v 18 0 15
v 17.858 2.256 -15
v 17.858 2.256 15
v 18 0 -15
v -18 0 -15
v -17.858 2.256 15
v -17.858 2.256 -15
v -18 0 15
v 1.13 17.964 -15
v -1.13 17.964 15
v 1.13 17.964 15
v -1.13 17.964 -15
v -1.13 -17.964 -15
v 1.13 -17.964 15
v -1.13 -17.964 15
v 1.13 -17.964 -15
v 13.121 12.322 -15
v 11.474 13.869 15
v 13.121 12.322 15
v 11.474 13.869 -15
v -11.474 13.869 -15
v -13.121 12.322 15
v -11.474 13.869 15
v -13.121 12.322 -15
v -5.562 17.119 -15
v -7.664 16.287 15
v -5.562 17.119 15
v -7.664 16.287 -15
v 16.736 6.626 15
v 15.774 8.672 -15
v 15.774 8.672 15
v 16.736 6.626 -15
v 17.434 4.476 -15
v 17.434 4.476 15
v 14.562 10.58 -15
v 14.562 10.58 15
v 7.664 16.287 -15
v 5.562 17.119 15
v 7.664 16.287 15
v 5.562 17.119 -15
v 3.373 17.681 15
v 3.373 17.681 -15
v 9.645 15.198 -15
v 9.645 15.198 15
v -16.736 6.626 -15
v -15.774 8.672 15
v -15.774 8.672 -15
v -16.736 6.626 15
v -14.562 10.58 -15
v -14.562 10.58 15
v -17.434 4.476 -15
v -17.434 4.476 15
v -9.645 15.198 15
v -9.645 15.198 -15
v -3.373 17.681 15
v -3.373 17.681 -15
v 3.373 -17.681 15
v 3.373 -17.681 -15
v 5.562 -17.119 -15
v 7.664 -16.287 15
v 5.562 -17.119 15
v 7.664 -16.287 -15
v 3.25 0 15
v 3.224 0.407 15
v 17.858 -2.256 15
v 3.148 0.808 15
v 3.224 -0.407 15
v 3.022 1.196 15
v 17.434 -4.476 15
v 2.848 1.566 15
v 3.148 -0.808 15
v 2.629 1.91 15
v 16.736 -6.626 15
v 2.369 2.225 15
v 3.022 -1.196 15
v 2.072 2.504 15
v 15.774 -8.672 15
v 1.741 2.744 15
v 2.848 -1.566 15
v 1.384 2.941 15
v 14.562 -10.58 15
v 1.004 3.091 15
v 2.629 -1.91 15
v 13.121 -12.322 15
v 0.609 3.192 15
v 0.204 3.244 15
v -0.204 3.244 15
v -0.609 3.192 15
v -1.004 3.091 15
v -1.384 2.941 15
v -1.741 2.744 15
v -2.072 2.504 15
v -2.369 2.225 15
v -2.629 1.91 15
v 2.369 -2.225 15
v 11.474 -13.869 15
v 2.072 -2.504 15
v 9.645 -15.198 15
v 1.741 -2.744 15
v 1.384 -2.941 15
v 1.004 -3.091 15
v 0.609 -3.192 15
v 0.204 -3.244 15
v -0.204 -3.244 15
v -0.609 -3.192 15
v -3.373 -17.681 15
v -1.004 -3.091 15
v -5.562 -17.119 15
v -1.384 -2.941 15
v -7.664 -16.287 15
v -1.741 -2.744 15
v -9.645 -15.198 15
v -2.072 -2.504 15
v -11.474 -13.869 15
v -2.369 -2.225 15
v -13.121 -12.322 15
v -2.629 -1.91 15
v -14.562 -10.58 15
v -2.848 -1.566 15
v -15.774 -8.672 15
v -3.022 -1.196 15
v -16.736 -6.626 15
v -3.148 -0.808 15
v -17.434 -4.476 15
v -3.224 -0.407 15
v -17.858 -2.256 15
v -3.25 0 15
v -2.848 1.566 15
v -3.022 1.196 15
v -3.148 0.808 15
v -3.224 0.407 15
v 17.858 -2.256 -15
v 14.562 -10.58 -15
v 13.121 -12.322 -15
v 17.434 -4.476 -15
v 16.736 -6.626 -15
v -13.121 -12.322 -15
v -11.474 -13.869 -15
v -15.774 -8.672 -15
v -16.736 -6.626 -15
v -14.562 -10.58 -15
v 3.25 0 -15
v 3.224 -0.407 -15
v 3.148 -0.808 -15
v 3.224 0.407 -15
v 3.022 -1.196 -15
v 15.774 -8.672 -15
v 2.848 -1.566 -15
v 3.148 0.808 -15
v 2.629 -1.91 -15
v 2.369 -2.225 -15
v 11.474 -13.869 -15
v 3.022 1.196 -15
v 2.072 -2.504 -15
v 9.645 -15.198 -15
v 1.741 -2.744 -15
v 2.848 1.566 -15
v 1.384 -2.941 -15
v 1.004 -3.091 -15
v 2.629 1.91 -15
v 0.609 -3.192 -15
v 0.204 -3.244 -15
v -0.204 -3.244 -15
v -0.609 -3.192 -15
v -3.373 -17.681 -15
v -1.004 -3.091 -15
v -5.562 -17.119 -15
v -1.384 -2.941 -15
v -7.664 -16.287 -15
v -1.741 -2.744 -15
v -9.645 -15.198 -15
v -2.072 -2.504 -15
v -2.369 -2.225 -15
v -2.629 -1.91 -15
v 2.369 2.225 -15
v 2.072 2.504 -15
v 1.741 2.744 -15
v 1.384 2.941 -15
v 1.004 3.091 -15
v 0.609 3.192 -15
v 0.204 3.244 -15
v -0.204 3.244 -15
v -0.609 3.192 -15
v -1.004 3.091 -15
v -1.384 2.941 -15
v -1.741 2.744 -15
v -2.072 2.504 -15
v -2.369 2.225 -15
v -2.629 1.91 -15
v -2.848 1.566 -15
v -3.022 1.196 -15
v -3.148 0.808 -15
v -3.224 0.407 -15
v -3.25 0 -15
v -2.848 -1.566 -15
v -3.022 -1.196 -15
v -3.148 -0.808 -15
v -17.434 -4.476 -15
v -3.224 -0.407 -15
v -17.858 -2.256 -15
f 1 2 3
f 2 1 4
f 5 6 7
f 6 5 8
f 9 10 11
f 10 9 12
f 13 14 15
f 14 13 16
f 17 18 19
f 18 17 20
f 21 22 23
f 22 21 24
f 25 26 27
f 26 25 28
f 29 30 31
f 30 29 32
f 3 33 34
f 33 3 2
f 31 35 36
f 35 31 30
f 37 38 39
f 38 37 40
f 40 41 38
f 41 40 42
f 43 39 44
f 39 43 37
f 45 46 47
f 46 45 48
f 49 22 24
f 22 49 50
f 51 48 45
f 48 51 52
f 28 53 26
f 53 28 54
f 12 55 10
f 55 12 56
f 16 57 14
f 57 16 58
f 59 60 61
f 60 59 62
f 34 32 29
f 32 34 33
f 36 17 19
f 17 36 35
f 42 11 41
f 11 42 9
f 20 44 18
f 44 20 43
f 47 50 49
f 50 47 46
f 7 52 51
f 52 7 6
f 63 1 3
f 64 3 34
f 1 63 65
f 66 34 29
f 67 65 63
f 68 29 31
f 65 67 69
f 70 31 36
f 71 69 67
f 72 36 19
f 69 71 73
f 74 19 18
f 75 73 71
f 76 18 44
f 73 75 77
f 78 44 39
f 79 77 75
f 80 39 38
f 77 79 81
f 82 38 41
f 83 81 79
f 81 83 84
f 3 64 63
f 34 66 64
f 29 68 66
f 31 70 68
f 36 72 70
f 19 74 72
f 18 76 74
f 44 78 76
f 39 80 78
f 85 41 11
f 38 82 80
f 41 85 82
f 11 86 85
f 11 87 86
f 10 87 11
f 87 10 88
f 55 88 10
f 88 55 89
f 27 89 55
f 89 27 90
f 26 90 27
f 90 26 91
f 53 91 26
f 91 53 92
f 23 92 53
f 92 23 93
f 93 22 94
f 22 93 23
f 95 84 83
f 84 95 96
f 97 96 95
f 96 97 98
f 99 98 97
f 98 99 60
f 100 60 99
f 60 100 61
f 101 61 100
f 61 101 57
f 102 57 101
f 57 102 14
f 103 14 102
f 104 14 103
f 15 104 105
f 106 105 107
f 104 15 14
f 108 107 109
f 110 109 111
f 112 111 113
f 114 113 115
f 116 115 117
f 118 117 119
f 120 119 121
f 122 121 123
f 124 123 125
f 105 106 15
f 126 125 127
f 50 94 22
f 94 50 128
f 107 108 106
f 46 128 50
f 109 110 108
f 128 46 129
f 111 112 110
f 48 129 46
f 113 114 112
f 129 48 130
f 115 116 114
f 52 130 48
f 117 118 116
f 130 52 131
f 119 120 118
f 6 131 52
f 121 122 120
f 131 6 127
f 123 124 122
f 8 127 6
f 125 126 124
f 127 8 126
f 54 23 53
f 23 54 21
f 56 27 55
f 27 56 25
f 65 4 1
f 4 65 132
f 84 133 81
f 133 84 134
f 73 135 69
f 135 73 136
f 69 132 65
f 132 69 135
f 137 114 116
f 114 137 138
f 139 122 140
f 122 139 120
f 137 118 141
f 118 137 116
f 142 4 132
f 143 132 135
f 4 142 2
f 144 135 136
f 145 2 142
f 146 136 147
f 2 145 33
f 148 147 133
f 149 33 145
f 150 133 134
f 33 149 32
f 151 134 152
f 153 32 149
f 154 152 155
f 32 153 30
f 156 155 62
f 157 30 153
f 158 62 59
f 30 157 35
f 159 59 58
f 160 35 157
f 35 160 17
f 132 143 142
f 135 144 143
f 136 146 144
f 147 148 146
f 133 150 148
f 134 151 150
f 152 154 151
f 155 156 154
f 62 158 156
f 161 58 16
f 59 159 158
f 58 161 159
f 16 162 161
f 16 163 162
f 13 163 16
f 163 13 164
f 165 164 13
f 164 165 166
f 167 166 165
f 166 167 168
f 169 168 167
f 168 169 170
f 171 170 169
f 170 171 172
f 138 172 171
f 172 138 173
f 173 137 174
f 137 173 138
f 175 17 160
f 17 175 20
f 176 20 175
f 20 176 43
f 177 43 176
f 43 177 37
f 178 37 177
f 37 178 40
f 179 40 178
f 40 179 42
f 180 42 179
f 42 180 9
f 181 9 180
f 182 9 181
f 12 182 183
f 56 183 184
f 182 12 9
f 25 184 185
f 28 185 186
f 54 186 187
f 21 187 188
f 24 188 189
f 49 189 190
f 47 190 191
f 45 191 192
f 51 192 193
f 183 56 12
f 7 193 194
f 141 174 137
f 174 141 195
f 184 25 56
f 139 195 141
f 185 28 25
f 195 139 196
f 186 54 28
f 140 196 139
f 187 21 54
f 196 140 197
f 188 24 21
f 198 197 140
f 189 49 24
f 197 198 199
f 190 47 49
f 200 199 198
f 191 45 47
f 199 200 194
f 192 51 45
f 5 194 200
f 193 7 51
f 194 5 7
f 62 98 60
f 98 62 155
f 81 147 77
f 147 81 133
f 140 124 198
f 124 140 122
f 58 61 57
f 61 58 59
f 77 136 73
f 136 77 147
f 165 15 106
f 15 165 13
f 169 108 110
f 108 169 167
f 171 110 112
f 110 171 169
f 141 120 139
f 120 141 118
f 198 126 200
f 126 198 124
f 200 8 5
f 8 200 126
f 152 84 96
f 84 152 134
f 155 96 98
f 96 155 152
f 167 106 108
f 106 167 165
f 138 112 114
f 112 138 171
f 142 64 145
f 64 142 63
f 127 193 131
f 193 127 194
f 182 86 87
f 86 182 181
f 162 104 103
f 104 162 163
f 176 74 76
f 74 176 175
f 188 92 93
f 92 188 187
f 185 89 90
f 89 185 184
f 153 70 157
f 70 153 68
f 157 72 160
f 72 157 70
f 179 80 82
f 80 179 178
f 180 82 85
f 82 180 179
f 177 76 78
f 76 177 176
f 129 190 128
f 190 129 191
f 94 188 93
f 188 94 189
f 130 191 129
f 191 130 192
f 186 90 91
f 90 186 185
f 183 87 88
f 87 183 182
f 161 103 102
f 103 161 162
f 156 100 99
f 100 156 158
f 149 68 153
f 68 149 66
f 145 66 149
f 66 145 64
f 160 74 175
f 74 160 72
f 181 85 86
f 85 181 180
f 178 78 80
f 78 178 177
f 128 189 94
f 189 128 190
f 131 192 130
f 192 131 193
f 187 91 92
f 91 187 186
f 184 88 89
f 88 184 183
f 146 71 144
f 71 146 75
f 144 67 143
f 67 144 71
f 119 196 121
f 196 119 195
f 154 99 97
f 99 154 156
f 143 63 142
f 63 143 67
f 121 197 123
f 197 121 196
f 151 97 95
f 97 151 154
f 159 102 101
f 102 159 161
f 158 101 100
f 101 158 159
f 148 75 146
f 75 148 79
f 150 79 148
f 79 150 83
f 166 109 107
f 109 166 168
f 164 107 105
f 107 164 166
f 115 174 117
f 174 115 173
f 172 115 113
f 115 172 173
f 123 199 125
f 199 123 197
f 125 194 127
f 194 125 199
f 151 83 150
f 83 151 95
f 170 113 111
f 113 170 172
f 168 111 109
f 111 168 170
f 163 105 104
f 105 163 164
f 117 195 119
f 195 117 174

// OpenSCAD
$fn = 50;


difference() {
	union() {
		translate(v = [0, 0, -15.0000000000]) {
			cylinder(h = 30, r = 18.0000000000);
		}
	}
	union() {
		translate(v = [0, 0, -100.0000000000]) {
			cylinder(h = 200, r = 3.2500000000);
		}
	}
}
